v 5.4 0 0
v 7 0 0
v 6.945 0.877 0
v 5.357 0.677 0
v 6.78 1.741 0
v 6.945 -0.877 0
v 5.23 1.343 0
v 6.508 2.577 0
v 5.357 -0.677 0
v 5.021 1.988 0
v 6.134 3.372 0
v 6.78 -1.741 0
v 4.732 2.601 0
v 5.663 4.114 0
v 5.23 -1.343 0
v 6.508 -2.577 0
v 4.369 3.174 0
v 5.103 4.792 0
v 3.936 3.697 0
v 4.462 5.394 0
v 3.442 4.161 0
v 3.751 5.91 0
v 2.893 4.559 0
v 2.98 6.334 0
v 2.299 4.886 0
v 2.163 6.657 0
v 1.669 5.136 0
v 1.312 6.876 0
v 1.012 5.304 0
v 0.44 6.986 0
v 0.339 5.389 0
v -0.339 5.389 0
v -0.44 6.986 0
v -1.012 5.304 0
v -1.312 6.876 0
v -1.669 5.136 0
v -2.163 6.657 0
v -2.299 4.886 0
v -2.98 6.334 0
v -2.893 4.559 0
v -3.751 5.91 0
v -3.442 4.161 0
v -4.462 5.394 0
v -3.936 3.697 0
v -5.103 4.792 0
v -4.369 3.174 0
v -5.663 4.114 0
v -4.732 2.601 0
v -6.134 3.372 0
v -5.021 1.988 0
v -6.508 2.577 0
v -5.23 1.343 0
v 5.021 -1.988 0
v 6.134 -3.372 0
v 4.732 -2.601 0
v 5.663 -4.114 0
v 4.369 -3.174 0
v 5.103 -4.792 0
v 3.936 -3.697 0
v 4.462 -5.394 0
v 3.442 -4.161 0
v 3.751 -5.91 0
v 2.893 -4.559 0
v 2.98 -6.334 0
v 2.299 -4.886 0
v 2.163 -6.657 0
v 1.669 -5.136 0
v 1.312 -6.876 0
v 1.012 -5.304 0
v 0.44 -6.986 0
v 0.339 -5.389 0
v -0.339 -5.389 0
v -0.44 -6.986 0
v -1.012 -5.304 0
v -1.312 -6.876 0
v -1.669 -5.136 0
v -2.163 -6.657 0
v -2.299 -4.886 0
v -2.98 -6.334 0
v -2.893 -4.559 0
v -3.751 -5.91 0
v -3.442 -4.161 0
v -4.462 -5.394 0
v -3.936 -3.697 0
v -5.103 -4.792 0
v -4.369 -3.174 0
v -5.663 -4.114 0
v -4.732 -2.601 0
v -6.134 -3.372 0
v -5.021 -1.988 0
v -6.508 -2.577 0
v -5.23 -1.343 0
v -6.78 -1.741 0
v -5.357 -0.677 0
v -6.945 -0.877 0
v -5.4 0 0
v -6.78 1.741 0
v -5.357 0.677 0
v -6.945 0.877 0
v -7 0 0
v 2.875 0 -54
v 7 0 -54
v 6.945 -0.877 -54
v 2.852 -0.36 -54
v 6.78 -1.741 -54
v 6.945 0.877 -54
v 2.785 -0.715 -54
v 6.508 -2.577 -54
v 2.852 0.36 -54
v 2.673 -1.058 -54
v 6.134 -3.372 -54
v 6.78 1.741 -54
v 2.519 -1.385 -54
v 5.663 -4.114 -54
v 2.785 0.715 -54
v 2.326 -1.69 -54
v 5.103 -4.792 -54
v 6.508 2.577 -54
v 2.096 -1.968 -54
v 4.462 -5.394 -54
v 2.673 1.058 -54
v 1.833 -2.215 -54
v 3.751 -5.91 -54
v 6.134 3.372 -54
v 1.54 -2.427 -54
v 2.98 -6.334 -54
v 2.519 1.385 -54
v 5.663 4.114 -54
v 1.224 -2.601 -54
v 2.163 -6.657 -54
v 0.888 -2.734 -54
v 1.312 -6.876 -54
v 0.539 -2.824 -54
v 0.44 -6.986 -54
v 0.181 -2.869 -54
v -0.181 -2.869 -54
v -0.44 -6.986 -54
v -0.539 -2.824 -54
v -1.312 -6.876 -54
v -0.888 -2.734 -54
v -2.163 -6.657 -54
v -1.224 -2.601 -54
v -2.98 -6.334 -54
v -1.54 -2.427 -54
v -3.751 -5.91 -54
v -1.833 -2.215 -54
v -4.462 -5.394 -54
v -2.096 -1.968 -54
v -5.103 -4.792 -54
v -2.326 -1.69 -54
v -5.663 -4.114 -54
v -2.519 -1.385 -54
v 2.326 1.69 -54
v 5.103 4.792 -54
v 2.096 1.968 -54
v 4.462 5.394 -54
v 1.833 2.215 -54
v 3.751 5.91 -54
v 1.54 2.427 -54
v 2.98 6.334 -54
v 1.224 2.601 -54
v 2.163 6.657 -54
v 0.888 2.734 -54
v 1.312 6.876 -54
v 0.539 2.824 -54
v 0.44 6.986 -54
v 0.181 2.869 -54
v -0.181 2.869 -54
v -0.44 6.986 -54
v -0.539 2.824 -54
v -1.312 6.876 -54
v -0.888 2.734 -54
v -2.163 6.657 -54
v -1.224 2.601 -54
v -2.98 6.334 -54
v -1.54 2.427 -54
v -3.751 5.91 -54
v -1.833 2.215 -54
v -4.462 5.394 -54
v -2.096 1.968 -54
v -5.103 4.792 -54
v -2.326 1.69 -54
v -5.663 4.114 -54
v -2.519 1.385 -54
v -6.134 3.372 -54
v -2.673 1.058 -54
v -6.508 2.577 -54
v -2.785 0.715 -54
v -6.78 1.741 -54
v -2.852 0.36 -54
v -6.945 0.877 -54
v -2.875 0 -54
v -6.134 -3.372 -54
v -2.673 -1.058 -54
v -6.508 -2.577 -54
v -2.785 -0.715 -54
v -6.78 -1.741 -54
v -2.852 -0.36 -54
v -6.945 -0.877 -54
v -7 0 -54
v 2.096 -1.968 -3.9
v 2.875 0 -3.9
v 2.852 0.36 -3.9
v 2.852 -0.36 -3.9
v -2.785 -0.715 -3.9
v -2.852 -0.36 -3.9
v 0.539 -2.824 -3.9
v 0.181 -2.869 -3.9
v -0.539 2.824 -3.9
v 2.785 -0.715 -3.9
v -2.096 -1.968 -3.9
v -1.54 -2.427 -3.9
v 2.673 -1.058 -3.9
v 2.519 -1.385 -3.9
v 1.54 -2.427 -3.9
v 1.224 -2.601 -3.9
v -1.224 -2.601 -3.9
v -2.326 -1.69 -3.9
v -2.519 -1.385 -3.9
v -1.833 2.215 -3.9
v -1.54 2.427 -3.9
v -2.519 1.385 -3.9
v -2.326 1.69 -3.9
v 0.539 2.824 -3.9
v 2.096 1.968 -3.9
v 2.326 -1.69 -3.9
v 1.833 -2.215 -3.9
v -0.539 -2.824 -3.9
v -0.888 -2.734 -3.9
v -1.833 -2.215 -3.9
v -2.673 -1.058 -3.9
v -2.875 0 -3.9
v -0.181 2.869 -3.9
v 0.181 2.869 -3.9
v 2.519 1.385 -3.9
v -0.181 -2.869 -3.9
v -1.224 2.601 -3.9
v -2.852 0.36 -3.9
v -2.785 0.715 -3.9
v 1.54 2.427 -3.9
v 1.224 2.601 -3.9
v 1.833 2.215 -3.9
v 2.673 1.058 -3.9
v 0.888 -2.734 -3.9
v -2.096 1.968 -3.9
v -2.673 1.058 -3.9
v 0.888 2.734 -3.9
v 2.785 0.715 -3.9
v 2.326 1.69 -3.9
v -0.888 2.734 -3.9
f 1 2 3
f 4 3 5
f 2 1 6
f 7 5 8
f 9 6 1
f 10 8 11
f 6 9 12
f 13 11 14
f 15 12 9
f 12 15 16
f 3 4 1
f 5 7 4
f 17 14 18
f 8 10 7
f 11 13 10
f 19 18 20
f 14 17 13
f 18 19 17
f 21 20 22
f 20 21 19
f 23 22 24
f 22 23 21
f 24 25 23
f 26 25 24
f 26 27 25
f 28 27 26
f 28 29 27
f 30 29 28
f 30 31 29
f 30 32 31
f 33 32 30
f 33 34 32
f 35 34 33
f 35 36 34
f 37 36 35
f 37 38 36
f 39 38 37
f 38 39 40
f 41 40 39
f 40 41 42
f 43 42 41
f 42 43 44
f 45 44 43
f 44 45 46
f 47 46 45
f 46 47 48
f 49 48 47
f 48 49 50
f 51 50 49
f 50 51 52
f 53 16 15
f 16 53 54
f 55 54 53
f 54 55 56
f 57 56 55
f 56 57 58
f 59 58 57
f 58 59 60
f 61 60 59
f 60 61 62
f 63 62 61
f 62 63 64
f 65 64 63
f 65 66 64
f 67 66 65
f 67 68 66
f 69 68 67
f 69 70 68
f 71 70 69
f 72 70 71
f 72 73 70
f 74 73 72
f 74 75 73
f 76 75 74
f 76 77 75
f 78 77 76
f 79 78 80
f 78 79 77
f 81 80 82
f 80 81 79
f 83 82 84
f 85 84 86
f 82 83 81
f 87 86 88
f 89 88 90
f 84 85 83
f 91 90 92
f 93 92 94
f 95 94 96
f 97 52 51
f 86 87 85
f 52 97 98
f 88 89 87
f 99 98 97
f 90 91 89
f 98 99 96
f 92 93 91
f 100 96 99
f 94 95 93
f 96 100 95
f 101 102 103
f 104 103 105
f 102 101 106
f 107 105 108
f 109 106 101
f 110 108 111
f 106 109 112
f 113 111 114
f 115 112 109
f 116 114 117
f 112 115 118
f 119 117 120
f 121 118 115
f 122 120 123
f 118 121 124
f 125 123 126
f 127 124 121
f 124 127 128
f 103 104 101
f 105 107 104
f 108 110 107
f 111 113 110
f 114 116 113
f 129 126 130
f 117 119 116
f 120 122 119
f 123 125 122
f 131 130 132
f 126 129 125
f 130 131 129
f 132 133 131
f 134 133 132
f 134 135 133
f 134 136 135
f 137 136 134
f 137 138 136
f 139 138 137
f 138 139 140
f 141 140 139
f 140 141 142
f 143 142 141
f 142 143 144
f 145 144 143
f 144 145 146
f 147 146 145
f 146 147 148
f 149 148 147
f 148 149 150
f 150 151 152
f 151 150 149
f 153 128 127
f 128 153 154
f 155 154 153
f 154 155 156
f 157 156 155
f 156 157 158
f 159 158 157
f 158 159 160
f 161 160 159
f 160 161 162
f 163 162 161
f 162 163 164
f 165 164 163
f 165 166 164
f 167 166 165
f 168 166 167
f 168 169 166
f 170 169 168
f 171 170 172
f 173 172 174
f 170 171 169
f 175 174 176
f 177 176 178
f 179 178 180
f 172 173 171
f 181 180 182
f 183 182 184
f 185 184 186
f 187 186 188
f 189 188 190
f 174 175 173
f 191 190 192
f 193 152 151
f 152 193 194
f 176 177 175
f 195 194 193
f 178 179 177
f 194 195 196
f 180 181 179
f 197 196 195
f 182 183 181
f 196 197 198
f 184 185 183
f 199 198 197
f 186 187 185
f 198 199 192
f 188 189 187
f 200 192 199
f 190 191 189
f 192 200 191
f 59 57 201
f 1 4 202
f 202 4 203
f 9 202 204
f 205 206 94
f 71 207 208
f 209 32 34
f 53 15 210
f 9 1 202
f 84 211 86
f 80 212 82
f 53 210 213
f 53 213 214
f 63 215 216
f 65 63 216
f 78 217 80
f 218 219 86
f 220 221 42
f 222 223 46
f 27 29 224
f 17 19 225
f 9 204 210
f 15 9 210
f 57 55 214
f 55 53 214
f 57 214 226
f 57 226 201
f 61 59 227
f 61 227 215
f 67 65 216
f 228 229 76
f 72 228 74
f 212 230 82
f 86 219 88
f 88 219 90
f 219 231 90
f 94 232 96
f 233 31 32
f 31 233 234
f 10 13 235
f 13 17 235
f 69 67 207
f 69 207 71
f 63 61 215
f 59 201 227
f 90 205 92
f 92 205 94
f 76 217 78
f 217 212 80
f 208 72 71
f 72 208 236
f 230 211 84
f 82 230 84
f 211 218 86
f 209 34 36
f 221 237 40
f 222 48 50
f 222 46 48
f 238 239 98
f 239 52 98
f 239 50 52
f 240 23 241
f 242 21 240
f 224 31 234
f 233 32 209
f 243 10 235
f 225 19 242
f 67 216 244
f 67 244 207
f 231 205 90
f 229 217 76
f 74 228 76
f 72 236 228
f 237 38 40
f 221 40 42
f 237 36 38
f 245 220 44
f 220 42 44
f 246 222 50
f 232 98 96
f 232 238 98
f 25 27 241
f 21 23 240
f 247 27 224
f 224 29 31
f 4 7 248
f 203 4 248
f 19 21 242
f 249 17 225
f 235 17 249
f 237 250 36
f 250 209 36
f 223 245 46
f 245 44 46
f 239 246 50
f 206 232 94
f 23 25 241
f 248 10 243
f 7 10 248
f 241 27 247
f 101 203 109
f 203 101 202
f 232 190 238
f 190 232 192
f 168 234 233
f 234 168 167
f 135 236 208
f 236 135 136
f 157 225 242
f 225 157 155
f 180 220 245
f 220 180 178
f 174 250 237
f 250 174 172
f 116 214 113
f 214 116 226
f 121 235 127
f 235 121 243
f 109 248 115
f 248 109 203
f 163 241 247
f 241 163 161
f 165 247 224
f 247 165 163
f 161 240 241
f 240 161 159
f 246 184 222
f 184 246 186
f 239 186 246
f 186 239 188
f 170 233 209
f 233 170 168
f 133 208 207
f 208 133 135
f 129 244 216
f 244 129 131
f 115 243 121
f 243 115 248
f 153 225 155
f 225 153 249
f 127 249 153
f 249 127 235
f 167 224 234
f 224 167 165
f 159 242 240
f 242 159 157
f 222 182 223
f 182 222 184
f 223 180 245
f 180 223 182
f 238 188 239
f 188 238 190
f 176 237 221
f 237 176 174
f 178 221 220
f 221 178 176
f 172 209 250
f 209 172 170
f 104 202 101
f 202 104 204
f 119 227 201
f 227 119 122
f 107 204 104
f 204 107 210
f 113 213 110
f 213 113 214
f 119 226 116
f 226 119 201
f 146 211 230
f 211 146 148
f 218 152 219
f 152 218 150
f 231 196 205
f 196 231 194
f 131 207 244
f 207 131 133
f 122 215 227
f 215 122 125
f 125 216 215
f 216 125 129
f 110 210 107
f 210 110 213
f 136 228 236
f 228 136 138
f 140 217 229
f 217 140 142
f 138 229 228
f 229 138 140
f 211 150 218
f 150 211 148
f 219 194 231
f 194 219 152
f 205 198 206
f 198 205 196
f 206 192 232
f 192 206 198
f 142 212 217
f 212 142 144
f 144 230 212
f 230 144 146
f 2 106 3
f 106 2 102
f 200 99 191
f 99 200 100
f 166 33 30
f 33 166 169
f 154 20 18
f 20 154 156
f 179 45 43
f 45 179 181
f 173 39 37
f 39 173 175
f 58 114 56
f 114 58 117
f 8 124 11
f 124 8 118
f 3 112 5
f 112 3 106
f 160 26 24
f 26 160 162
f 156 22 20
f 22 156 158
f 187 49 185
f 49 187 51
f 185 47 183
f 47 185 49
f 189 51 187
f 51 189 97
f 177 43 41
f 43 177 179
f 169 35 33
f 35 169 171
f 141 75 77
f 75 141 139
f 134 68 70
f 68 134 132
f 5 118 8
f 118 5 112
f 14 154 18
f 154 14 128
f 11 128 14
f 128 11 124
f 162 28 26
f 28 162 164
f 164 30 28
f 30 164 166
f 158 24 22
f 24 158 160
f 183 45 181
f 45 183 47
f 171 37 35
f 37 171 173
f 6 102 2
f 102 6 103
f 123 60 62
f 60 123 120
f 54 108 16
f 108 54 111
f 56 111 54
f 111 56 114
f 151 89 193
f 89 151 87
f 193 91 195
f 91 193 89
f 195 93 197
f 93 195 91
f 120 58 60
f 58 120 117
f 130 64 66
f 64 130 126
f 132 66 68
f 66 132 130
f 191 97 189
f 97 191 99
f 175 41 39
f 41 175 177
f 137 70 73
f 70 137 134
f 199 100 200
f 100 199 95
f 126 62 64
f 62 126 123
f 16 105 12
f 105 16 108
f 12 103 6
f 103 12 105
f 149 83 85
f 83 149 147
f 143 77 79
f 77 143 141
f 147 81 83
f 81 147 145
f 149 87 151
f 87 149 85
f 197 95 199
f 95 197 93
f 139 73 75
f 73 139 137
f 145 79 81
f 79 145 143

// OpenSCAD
$fn = 50;


difference() {
	union() {
		translate(v = [0, 0, -54.0000000000]) {
			cylinder(h = 54, r = 7.0000000000);
		}
	}
	union() {
		translate(v = [0, 0, 0]) {
			rotate(a = [0, 0, 0]) {
				difference() {
					union() {
						#translate(v = [0, 0, -54.0000000000]) {
							cylinder(h = 54, r = 2.6000000000);
						}
						#translate(v = [0, 0, -3.9000000000]) {
							cylinder(h = 3.9000000000, r1 = 2.8750000000, r2 = 5.4000000000);
						}
						#translate(v = [0, 0, -54.0000000000]) {
							cylinder(h = 54, r = 2.8750000000);
						}
						#translate(v = [0, 0, -54.0000000000]) {
							cylinder(h = 54, r = 2.6000000000);
						}
					}
					union();
				}
			}
		}
	}
}
